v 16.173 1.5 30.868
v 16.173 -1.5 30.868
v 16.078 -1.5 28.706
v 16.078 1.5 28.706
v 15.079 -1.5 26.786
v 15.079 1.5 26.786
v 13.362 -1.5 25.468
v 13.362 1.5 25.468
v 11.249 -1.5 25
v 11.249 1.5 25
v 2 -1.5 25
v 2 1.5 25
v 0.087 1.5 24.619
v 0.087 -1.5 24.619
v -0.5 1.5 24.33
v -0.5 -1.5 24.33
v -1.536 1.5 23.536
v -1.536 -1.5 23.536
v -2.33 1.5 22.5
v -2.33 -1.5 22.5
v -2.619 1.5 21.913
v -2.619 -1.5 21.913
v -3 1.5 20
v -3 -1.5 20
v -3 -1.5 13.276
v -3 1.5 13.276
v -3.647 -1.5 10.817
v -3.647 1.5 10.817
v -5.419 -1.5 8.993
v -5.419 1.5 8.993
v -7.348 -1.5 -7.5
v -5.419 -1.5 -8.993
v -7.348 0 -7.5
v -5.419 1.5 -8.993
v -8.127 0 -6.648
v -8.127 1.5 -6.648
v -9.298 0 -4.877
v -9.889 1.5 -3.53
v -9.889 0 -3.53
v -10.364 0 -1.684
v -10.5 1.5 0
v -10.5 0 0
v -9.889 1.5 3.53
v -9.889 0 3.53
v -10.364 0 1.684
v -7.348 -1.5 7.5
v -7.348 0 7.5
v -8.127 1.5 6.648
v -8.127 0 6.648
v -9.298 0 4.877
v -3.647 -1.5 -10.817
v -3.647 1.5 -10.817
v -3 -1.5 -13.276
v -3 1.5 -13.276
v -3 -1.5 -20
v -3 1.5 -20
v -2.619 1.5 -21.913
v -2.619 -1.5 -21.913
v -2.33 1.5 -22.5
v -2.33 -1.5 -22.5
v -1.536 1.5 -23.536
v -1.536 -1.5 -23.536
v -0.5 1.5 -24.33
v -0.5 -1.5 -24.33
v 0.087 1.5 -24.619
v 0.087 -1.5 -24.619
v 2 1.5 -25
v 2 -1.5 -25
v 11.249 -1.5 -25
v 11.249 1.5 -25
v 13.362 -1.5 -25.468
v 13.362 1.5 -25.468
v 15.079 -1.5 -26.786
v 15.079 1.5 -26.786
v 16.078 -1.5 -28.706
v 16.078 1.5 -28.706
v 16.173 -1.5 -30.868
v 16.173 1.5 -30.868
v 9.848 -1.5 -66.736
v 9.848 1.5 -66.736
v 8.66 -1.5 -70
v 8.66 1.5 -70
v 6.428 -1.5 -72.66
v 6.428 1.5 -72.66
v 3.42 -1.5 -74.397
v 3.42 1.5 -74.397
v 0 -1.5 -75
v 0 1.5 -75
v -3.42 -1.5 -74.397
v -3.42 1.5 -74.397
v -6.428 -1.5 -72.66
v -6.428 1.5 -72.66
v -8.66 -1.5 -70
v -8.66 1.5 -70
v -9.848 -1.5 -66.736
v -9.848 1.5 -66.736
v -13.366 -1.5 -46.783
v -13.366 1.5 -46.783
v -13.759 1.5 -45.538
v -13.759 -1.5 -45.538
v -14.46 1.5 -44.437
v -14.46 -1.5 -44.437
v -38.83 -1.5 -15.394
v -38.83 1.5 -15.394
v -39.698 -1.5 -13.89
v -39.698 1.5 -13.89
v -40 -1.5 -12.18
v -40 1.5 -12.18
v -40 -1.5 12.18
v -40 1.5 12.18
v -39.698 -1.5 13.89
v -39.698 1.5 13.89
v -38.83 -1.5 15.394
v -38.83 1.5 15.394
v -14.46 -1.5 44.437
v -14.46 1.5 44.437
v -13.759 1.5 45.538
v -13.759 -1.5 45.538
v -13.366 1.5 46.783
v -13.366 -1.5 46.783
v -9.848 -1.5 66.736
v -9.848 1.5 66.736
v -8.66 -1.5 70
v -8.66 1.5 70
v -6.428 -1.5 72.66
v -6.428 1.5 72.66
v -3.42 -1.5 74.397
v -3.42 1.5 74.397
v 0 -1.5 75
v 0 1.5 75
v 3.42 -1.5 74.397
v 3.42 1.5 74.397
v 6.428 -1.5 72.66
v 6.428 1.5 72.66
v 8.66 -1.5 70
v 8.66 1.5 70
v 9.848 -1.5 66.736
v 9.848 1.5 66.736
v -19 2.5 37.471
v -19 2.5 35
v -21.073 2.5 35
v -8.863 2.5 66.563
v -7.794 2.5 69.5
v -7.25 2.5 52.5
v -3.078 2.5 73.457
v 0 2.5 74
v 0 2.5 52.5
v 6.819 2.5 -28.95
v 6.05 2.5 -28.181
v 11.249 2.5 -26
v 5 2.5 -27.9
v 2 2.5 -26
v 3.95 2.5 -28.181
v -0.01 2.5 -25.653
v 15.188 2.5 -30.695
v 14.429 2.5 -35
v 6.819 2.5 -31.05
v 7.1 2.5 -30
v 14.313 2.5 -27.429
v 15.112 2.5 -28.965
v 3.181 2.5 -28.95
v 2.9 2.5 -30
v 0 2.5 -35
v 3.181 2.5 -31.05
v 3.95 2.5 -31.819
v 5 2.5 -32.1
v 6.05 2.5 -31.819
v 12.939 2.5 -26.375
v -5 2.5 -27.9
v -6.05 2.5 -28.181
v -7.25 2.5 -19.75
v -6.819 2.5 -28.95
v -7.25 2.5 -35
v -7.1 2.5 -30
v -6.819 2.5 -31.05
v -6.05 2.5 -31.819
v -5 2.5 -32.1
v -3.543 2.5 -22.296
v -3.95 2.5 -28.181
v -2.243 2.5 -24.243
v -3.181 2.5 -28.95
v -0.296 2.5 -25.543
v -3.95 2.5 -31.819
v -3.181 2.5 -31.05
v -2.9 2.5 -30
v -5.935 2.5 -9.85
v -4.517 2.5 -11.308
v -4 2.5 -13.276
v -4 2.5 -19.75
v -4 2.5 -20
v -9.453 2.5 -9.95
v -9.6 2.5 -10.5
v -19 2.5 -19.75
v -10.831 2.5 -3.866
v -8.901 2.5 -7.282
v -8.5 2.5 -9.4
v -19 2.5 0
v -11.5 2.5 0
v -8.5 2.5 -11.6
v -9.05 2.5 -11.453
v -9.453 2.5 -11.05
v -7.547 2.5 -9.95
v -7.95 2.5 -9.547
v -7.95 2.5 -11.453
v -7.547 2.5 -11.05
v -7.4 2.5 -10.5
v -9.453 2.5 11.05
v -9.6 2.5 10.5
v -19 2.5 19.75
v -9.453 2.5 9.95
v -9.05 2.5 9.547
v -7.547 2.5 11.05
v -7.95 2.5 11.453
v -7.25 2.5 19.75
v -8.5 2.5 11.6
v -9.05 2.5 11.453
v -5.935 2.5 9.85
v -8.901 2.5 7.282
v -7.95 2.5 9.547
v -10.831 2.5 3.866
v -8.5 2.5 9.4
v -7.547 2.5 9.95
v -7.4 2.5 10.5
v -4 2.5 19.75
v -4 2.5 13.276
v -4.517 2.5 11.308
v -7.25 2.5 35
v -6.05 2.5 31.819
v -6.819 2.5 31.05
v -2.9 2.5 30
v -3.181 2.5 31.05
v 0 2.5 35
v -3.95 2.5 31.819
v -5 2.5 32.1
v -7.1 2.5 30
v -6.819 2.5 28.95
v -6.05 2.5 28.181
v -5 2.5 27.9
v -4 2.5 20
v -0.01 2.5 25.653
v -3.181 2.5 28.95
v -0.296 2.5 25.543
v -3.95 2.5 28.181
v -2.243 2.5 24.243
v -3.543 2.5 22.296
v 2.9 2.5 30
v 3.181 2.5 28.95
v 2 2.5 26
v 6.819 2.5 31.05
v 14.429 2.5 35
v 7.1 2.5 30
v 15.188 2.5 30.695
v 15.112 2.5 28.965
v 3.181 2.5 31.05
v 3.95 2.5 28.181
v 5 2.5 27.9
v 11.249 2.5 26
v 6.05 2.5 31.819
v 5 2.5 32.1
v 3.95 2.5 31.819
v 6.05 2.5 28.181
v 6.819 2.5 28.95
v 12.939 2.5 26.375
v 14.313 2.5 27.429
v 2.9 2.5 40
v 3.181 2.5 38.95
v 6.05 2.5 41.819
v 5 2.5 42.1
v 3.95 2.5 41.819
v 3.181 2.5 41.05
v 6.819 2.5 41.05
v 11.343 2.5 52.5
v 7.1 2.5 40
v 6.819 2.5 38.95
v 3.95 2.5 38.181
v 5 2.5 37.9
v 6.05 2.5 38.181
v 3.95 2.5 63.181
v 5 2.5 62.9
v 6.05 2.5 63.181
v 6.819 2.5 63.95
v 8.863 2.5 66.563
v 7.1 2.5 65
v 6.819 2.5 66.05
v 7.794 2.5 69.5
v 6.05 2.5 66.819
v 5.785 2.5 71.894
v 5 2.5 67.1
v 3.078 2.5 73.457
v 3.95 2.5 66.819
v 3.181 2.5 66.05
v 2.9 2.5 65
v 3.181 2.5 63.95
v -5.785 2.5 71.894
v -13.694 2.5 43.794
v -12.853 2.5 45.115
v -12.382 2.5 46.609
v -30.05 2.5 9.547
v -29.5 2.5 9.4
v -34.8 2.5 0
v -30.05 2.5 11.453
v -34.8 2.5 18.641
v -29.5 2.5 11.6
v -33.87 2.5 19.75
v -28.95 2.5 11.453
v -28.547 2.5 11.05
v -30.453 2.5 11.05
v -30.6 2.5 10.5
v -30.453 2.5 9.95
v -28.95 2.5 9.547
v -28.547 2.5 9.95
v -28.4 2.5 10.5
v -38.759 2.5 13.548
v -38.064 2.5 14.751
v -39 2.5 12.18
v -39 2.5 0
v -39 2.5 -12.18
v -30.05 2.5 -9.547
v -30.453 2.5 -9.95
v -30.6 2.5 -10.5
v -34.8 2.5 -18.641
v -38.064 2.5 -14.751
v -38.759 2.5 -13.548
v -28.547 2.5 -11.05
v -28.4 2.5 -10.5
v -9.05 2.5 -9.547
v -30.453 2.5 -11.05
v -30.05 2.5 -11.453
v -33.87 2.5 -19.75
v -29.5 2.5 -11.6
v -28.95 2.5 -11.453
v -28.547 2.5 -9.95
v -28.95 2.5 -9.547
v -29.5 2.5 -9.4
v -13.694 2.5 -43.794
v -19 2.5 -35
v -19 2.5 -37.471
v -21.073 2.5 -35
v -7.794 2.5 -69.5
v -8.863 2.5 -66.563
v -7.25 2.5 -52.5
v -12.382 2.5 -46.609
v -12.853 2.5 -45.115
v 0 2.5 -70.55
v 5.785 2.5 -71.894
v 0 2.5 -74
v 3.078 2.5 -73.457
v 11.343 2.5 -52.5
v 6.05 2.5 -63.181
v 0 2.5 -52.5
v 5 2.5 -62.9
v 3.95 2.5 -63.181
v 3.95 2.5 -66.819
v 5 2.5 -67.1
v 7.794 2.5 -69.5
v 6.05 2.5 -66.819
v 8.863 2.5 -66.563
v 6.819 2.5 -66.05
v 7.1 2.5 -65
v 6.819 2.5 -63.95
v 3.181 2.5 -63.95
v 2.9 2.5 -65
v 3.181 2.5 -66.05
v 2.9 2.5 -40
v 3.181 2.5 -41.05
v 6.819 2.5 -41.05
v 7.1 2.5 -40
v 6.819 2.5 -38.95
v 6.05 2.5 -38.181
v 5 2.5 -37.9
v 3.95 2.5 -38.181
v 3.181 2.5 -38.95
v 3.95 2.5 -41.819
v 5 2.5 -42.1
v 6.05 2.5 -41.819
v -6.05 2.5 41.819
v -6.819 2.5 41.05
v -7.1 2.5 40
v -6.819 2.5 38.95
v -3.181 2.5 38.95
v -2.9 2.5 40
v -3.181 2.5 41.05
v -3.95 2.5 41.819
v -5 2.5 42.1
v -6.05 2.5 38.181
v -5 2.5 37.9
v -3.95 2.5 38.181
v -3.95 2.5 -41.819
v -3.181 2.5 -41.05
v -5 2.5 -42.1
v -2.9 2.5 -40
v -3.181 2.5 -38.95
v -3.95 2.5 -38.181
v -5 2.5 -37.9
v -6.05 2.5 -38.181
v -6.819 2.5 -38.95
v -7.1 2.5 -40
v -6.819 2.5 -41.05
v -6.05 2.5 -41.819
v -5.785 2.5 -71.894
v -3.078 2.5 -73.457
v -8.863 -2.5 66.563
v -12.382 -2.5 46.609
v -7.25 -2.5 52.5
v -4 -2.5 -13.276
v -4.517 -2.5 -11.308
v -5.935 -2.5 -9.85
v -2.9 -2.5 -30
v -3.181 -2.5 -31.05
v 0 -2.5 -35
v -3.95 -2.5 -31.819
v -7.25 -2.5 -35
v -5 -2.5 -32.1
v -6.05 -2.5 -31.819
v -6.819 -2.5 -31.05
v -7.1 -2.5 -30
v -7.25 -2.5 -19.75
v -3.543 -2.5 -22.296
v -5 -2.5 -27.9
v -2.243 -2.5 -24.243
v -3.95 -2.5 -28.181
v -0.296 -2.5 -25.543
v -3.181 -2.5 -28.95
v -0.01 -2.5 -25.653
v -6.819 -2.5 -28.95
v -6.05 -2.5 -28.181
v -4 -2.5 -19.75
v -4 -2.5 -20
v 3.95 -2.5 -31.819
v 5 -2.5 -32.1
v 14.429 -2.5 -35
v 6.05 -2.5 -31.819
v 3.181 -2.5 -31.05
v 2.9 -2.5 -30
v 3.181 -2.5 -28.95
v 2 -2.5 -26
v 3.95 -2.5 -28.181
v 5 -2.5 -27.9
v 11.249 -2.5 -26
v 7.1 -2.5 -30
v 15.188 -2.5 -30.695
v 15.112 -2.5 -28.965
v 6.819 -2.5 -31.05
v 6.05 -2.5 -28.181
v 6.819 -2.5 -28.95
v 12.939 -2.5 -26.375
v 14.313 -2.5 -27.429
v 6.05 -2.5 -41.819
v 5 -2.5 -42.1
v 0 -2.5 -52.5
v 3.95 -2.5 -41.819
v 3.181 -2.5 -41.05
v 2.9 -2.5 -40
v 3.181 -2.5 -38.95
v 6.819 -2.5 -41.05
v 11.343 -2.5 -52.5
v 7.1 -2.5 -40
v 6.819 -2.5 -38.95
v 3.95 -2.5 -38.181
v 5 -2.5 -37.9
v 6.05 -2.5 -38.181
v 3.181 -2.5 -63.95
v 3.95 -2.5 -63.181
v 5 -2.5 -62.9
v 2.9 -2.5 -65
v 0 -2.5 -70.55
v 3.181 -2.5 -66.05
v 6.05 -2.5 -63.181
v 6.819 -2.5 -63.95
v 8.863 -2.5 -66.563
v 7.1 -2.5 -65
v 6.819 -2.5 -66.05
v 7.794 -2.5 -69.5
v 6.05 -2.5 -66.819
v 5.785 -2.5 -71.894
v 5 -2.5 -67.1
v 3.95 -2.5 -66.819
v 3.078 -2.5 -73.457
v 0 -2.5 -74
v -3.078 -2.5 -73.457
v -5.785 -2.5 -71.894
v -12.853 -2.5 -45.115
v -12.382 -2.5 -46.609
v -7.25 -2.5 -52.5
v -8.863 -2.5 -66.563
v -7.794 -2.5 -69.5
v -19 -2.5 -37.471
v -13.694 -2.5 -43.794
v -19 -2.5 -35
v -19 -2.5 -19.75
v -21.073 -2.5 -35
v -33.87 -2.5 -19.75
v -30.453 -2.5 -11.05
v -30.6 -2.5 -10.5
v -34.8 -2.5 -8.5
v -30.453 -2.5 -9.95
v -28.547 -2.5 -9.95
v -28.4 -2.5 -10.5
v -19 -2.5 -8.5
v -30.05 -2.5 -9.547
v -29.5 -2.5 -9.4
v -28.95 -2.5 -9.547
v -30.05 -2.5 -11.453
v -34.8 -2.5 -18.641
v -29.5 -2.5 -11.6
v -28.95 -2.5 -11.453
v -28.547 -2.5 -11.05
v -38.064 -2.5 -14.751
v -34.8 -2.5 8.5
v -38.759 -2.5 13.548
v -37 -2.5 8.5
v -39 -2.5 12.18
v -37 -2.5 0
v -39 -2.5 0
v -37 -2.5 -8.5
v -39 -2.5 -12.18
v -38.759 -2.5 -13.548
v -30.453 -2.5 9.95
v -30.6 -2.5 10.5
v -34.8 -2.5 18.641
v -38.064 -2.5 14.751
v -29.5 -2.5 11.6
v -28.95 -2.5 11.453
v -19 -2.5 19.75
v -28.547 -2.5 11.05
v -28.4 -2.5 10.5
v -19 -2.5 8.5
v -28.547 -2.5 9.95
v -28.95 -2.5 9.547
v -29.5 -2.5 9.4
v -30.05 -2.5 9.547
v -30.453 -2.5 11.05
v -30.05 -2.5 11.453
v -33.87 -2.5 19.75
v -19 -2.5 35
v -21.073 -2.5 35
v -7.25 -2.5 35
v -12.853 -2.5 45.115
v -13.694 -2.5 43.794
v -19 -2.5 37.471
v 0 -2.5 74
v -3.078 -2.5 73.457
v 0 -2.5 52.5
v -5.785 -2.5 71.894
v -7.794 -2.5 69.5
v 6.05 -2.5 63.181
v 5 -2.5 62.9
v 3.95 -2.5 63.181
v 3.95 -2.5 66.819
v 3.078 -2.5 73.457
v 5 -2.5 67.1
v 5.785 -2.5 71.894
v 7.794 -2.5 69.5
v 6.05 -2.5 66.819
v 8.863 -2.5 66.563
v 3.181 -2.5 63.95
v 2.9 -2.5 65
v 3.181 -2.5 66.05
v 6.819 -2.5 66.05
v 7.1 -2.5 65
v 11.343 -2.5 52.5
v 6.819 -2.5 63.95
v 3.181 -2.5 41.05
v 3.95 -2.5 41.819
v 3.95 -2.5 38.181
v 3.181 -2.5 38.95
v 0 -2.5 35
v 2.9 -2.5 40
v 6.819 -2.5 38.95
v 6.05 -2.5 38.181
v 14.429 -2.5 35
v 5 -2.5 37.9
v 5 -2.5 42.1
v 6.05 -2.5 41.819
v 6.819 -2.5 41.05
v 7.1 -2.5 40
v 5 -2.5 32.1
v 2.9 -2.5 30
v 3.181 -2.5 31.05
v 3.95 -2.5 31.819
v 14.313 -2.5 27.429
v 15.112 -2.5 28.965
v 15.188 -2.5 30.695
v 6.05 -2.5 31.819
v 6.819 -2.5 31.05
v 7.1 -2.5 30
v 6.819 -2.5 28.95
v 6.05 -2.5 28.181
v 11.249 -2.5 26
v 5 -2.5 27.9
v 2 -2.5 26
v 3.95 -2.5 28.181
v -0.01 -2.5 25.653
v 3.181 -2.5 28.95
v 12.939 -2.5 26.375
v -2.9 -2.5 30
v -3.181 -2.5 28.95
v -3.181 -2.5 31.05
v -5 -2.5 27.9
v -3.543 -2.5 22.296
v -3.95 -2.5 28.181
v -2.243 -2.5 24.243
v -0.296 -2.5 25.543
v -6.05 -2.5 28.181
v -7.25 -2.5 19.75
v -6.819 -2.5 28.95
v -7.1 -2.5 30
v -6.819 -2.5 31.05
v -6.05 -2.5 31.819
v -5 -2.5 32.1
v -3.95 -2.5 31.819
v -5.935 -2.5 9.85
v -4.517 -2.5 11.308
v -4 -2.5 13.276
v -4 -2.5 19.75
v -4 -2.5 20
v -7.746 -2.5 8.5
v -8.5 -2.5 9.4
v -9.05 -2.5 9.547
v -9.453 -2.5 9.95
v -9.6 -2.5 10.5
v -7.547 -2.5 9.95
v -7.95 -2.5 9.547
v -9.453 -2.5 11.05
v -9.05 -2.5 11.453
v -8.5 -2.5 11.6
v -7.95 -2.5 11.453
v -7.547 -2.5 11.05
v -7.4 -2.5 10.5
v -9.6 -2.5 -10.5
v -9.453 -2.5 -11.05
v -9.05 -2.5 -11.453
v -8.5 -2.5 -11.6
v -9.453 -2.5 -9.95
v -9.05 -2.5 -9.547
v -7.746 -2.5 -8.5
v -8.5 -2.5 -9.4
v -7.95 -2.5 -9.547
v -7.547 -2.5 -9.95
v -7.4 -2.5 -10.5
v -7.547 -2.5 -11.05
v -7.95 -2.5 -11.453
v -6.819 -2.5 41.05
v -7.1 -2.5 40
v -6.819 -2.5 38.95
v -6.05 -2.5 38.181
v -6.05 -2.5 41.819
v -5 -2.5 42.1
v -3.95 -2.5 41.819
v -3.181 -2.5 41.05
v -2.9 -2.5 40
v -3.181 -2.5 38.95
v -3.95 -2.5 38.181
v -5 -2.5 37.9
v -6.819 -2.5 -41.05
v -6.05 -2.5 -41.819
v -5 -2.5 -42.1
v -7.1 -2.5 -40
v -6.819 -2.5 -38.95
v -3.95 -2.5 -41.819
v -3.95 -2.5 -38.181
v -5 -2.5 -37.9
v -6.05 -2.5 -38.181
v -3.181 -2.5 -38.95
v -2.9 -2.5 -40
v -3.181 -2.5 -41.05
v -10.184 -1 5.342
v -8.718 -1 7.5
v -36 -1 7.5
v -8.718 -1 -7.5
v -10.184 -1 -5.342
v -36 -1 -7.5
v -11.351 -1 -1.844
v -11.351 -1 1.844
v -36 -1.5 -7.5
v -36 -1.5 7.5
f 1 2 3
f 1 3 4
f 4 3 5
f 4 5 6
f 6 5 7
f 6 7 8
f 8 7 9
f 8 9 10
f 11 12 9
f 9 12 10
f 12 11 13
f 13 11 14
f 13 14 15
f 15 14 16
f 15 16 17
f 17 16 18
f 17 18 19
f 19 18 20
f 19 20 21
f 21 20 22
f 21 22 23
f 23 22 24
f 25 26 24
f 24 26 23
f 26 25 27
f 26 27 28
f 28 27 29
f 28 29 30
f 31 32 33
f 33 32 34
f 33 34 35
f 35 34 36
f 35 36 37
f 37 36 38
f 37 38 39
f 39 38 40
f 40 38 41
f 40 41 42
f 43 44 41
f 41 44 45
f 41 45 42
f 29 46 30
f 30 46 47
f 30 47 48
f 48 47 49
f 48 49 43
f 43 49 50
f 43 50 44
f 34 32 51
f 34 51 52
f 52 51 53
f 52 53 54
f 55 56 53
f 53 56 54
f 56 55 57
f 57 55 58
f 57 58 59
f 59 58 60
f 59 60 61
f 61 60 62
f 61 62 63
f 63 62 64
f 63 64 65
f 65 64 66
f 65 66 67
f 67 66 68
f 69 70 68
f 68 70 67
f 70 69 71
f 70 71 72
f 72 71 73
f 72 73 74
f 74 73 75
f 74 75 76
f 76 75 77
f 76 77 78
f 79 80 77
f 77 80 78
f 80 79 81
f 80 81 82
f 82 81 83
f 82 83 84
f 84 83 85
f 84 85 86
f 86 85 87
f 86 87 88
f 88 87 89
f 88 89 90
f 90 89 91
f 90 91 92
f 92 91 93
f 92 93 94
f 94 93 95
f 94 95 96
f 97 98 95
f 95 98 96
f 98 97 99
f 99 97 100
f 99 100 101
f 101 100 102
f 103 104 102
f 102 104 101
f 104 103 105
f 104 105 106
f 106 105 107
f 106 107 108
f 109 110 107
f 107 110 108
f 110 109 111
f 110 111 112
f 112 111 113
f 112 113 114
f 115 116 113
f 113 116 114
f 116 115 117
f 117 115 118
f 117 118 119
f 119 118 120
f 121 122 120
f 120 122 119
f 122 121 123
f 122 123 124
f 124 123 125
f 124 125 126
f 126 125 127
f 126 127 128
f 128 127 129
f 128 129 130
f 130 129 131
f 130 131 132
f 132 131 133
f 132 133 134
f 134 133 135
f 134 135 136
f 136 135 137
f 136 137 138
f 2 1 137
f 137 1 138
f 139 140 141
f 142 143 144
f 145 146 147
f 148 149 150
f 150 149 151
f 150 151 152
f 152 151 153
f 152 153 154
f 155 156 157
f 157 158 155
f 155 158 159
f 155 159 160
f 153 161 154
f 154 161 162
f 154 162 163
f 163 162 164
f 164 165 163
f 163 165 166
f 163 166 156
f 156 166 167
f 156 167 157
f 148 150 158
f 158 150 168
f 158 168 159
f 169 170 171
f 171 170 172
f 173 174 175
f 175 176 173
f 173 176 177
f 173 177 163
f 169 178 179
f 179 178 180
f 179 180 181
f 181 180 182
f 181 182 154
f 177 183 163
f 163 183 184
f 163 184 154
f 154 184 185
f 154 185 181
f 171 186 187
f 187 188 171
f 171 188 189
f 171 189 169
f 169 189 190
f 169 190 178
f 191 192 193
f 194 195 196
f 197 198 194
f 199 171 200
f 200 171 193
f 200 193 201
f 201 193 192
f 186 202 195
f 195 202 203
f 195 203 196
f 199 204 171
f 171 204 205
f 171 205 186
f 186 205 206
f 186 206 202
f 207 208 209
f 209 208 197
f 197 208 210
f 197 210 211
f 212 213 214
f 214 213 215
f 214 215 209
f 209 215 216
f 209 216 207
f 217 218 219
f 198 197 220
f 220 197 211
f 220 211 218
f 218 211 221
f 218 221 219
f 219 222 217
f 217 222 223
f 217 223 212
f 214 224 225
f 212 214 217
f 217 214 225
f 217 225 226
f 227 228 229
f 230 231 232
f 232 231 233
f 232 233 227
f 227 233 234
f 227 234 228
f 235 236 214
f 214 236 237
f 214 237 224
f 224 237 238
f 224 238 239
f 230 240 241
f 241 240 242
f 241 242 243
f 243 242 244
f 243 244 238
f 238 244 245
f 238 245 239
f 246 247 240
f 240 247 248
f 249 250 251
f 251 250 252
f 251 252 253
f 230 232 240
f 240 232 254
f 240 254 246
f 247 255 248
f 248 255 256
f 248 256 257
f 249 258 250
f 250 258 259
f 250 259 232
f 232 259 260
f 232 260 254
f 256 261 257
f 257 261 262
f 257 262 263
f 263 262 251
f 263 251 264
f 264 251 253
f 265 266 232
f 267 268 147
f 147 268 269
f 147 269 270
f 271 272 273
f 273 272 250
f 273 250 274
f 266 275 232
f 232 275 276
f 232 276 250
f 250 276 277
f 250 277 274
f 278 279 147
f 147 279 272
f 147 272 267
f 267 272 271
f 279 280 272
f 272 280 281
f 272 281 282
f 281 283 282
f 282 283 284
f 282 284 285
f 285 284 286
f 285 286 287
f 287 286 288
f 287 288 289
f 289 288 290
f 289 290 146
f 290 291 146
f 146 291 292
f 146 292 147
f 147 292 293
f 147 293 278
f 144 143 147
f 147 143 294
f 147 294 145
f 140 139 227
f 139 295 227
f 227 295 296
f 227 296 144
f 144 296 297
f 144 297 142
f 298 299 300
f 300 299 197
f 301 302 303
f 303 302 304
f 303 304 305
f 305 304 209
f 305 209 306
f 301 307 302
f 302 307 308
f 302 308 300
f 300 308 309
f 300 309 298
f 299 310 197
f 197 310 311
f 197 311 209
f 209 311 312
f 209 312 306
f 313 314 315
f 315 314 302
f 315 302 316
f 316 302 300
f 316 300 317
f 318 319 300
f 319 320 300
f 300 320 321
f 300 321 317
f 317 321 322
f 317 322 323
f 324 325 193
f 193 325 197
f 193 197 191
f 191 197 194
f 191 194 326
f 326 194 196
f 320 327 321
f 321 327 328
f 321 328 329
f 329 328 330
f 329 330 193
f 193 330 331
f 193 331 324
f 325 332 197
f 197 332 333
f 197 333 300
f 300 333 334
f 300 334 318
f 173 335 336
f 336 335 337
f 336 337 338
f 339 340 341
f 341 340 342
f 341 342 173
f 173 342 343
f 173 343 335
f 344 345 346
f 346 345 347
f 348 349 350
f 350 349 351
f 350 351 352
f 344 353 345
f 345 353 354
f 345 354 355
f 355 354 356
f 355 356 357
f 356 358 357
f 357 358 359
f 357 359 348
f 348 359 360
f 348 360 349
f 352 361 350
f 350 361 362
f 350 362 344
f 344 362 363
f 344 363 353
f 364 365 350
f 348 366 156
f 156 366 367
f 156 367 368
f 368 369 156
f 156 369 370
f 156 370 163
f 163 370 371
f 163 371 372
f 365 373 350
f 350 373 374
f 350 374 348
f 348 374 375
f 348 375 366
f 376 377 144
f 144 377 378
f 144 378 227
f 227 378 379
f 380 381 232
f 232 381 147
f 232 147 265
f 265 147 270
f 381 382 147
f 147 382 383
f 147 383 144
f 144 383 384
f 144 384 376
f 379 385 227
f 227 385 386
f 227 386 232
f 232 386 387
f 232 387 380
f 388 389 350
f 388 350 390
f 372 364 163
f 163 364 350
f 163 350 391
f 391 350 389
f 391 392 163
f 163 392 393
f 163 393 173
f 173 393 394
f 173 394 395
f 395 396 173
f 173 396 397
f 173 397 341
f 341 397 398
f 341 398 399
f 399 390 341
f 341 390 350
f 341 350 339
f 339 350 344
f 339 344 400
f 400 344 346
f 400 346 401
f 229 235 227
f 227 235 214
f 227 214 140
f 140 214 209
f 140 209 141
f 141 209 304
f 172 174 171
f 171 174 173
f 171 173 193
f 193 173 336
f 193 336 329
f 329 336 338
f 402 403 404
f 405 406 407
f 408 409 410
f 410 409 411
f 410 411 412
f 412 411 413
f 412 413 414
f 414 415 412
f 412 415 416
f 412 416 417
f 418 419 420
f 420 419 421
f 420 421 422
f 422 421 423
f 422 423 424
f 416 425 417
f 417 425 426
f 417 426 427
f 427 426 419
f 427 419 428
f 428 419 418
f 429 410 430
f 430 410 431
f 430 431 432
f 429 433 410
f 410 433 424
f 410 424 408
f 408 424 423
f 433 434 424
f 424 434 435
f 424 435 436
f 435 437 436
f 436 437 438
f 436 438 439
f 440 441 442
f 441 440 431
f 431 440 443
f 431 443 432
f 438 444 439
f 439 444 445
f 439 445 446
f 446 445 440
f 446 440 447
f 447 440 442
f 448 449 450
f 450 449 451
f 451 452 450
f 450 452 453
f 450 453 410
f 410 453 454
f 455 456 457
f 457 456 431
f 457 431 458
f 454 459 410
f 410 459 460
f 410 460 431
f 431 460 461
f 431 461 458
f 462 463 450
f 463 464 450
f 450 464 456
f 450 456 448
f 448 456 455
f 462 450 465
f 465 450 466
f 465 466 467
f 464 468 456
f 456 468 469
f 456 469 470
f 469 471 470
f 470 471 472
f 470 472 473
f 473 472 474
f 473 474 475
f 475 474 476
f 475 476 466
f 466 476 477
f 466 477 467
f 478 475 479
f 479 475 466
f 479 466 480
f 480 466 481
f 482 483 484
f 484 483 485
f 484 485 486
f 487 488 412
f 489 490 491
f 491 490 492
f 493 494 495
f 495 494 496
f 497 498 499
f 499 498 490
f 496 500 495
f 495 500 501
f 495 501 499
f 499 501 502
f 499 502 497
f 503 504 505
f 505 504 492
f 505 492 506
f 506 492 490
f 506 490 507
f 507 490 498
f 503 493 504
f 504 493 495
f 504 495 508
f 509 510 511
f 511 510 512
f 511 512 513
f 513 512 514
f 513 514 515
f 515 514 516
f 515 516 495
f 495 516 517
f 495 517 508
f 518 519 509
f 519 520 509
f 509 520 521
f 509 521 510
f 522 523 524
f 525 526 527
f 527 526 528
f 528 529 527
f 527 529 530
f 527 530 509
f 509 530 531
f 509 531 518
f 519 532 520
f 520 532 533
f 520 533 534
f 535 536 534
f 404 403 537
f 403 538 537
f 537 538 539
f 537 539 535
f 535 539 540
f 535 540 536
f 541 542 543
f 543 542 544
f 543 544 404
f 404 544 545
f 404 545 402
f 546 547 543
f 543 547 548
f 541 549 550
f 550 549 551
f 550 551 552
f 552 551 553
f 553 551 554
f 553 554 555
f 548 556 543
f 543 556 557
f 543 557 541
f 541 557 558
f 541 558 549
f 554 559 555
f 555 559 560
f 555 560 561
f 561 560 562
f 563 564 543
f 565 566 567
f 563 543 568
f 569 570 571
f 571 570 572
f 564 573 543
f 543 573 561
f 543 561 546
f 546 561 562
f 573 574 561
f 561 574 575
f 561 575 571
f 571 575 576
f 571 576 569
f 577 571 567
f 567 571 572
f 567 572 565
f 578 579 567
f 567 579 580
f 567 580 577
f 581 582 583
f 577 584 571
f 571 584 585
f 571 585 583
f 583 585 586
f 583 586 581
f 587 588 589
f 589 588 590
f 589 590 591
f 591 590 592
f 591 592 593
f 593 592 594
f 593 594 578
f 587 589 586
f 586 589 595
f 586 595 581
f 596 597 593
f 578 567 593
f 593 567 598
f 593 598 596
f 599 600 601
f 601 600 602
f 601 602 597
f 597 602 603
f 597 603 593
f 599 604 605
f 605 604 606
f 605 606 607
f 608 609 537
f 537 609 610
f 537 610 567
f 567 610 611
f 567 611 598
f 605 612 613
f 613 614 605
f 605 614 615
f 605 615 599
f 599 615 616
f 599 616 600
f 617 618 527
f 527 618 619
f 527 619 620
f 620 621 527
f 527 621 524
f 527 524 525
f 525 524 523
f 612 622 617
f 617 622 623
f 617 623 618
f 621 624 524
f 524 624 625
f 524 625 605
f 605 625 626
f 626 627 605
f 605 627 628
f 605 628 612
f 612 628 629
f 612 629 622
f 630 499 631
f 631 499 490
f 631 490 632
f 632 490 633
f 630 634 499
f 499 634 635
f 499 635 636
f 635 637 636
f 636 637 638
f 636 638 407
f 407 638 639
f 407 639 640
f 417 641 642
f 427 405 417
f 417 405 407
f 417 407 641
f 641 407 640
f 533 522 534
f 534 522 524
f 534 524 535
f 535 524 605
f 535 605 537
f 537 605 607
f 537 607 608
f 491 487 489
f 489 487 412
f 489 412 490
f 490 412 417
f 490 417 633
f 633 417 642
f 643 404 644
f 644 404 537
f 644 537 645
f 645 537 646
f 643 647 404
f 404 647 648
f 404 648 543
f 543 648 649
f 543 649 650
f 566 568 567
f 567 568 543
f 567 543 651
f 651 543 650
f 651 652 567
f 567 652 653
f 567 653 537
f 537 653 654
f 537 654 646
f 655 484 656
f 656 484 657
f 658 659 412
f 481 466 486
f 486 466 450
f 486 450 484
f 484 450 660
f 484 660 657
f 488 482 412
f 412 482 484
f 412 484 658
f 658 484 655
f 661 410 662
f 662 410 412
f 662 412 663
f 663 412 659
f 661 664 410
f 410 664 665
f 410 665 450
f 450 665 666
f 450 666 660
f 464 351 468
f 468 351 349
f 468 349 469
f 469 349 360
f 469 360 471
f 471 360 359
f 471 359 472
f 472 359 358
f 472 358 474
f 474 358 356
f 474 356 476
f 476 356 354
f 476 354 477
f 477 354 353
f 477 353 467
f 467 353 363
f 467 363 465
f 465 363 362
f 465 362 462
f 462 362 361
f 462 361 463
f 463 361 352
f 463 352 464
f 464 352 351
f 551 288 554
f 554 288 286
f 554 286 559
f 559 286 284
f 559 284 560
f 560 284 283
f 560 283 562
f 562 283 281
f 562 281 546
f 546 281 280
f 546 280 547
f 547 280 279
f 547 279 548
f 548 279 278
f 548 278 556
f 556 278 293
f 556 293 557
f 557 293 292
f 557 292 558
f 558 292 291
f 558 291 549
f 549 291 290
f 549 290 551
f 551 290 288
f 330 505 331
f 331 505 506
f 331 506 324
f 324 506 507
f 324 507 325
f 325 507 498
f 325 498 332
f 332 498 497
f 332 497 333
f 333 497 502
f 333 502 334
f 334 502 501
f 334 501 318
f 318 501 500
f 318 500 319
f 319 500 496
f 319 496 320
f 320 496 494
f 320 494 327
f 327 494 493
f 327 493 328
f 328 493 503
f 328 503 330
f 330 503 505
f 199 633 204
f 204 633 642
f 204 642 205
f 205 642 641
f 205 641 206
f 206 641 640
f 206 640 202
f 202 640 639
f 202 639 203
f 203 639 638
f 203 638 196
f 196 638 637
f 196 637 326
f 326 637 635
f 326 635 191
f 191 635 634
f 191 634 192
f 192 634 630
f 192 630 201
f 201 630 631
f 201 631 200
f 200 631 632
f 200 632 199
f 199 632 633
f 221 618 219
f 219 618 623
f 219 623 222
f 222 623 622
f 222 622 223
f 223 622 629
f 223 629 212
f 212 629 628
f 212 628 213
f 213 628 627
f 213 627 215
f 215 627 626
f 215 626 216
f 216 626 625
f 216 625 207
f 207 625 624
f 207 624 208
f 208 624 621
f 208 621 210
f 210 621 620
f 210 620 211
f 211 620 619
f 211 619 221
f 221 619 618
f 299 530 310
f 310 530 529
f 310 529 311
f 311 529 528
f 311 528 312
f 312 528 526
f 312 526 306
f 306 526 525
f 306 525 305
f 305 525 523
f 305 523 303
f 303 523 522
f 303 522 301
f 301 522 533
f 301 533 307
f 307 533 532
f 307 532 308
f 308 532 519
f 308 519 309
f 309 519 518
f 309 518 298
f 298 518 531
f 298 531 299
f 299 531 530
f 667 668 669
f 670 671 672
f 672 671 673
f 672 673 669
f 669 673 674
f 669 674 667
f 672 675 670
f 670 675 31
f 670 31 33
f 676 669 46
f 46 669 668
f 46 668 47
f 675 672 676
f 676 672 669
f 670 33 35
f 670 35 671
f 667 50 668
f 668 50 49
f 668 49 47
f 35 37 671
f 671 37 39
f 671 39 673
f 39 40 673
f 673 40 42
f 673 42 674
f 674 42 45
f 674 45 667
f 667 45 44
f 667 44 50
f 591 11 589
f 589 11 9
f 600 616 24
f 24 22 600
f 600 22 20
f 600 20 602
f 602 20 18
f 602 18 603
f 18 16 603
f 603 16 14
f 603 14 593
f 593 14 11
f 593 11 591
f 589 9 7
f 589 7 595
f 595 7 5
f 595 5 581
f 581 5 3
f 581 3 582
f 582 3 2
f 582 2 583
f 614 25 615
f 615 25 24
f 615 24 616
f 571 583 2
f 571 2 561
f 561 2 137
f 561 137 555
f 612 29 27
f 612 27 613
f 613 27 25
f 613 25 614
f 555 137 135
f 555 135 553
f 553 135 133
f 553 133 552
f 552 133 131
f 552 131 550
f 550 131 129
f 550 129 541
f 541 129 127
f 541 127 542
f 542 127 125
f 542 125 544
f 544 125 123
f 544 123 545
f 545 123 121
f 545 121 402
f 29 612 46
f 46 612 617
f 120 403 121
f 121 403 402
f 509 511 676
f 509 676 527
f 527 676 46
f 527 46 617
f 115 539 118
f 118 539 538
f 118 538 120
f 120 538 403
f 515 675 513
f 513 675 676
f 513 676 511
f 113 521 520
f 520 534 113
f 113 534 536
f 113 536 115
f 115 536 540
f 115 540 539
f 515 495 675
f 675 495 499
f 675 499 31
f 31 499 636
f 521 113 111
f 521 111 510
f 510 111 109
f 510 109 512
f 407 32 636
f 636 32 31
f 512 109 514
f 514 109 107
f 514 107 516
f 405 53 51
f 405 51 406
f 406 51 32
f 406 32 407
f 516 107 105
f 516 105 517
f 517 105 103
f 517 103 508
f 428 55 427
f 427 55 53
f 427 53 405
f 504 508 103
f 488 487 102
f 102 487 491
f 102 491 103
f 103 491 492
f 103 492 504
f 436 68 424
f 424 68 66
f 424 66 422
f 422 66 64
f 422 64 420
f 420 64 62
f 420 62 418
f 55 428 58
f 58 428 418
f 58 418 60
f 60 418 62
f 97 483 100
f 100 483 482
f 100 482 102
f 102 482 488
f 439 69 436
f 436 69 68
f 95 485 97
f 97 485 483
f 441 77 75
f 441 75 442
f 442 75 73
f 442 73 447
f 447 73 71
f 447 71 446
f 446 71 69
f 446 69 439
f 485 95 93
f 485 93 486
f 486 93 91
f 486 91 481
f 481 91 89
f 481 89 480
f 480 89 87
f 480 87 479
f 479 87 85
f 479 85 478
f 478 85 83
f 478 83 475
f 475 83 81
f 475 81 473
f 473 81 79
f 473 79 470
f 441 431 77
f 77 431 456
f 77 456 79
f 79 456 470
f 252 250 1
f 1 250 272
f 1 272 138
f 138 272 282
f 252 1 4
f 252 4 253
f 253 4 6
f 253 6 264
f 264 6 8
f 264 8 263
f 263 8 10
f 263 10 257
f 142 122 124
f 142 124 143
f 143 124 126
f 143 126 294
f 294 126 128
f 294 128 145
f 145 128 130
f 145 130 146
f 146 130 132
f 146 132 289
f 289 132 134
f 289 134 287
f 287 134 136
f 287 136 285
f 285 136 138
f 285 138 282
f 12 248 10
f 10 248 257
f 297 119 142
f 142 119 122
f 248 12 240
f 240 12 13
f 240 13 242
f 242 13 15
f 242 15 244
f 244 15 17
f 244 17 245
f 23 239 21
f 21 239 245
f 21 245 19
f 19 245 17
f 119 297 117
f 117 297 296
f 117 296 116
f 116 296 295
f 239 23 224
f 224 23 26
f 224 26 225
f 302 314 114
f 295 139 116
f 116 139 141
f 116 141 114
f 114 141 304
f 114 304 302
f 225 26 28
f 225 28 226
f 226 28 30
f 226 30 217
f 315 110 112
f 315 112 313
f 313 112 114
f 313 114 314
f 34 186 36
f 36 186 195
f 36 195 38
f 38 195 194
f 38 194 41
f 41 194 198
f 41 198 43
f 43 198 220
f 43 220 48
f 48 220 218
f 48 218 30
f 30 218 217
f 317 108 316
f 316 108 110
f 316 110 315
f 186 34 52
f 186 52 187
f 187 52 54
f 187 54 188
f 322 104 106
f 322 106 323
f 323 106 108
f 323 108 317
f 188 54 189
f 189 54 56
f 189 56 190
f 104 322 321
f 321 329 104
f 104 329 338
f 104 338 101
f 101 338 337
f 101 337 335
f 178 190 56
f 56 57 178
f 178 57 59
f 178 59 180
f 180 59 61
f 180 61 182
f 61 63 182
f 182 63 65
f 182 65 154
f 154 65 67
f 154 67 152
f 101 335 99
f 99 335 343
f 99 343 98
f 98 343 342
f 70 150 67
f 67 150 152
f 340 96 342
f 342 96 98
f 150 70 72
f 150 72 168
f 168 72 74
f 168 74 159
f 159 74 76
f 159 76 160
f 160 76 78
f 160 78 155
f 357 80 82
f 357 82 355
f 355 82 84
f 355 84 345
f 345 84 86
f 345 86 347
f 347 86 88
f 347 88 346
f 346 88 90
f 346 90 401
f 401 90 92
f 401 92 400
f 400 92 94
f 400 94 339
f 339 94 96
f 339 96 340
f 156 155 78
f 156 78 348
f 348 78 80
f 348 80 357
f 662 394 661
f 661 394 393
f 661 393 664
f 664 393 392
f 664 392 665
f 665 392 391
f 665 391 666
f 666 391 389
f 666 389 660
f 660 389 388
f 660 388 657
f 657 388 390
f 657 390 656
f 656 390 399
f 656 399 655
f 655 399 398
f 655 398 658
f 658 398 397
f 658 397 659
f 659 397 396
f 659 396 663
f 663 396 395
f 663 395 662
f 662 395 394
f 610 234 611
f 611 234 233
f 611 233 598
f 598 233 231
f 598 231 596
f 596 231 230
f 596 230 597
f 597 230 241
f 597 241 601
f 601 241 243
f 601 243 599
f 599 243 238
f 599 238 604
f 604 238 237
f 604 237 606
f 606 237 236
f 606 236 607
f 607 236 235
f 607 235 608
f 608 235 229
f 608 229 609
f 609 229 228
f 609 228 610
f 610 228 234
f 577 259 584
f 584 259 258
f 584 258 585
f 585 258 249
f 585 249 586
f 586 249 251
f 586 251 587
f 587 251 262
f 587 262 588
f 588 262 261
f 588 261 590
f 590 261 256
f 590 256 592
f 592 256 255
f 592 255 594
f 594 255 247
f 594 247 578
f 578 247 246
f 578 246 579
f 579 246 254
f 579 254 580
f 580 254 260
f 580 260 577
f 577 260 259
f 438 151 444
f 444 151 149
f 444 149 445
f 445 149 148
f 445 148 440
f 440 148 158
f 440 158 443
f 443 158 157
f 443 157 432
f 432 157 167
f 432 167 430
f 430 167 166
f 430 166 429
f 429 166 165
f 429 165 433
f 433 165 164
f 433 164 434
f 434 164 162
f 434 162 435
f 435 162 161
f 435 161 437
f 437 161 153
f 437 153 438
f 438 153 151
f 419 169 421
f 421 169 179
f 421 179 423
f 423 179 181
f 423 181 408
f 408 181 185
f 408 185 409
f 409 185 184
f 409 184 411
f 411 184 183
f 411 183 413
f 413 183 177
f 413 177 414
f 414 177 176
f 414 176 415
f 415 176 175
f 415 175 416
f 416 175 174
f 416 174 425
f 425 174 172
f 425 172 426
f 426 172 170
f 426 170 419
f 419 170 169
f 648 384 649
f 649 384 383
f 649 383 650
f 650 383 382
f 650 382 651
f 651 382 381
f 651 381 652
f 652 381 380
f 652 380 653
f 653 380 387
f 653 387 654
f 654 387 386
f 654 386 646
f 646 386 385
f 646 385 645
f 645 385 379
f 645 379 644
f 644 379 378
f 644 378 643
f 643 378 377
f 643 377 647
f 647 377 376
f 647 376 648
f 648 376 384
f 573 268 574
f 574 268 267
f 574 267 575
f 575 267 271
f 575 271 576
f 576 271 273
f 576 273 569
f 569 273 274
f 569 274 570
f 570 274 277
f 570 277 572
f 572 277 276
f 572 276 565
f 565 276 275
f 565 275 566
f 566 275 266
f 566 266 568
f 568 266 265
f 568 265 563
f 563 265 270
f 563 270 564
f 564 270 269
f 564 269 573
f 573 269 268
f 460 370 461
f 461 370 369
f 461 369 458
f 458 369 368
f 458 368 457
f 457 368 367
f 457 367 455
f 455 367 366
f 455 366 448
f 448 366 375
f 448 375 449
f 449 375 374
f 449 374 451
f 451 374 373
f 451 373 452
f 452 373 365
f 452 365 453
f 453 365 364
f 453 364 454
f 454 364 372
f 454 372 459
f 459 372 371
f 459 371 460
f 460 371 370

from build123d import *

# Parameters (mm, degrees)
EXTRUDE_1_DEPTH          = 2.5
SKETCH_2_R               = 2.1
CUT_EXTRUDE_1_DEPTH      = 86.14693183
SKETCH_3_R               = 1.1
CUT_EXTRUDE_2_DEPTH      = 86.14693183
SKETCH_6_W               = 36
SKETCH_6_H               = 15
CUT_EXTRUDE_3_DEPTH      = 1.5
CHAMFER_1_SIZE           = 1
CUT_EXTRUDE_4_DEPTH      = 86.14693183
CUT_EXTRUDE_4_DEPTH_BACK = 86.14693183
SKETCH_7_R               = 2.1


with BuildPart() as part:
    # 草图1 → 凸台-拉伸1 (new, symmetric)
    with BuildSketch(Plane(origin=(0, 0, 0), x_dir=(1, 0, 0), z_dir=(0, 1, 0))):
        with BuildLine():
            Line((16.172616149, -30.868240888), (9.84807753, -66.736481777))
            ThreePointArc((9.84807753, -66.736481777), (0, -75), (-9.84807753, -66.736481777))
            Line((-9.84807753, -66.736481777), (-13.366457523, -46.782757288))
            ThreePointArc((-13.366457523, -46.782757288), (-13.758957353, -45.537906868), (-14.460274073, -44.437060128))
            Line((-14.460274073, -44.437060128), (-38.830222216, -15.394086877))
            ThreePointArc((-38.830222216, -15.394086877), (-39.698463104, -13.890249545), (-40, -12.180148829))
            Line((-40, -12.180148829), (-40, 12.180148829))
            ThreePointArc((-40, 12.180148829), (-39.698463104, 13.890249545), (-38.830222216, 15.394086877))
            Line((-38.830222216, 15.394086877), (-14.460274073, 44.437060128))
            ThreePointArc((-14.460274073, 44.437060128), (-13.758957353, 45.537906868), (-13.366457523, 46.782757288))
            Line((-13.366457523, 46.782757288), (-9.84807753, 66.736481777))
            ThreePointArc((-9.84807753, 66.736481777), (0, 75), (9.84807753, 66.736481777))
            Line((9.84807753, 66.736481777), (16.172616149, 30.868240888))
            ThreePointArc((16.172616149, 30.868240888), (15.0787996, 26.786061952), (11.248577384, 25))
            Line((11.248577384, 25), (2, 25))
            ThreePointArc((2, 25), (-1.535533906, 23.535533906), (-3, 20))
            Line((-3, 20), (-3, 13.275918047))
            ThreePointArc((-3, 13.275918047), (-3.646654975, 10.816571163), (-5.419354839, 8.993363839))
            ThreePointArc((-5.419354839, 8.993363839), (-10.5, 0), (-5.419354839, -8.993363839))
            ThreePointArc((-5.419354839, -8.993363839), (-3.646654975, -10.816571163), (-3, -13.275918047))
            Line((-3, -13.275918047), (-3, -20))
            ThreePointArc((-3, -20), (-1.535533906, -23.535533906), (2, -25))
            Line((2, -25), (11.248577384, -25))
            ThreePointArc((11.248577384, -25), (15.0787996, -26.786061952), (16.172616149, -30.868240888))
        make_face()
    extrude(amount=EXTRUDE_1_DEPTH, both=True)

    # 草图2 → 切除-拉伸1 (cut, through all)
    with BuildSketch(Plane(origin=(0, 2.5, 0), x_dir=(1, 0, 0), z_dir=(0, 1, 0))):
        with Locations(Location((5, -65, 0), (0, 0, 270))):
            Circle(SKETCH_2_R)
        with Locations(Location((5, 65, 0), (0, 0, 90))):
            Circle(SKETCH_2_R)
    extrude(amount=-CUT_EXTRUDE_1_DEPTH, mode=Mode.SUBTRACT)

    # 草图3 → 切除-拉伸2 (cut, through all)
    with BuildSketch(Plane.XZ.offset(2.5)):
        with Locations(Location((-8.5, 10.5, 0), (0, 0, 270))):
            Circle(SKETCH_3_R)
        with Locations(Location((-29.5, 10.5, 0), (0, 0, 270))):
            Circle(SKETCH_3_R)
        with Locations(Location((-29.5, -10.5, 0), (0, 0, 90))):
            Circle(SKETCH_3_R)
        with Locations(Location((-8.5, -10.5, 0), (0, 0, 90))):
            Circle(SKETCH_3_R)
    extrude(amount=-CUT_EXTRUDE_2_DEPTH, mode=Mode.SUBTRACT)

    # 草图6 → 切除-拉伸3 (cut)
    with BuildSketch(Plane.XZ.offset(2.5)):
        with Locations((-18, 0)):
            Rectangle(SKETCH_6_W, SKETCH_6_H)
    extrude(amount=-CUT_EXTRUDE_3_DEPTH, mode=Mode.SUBTRACT)

    # 倒角1
    chamfer_1_edges = [part.edges().sort_by_distance(p)[0] for p in [
        (-6.427430804, -2.5, -8.302899088),
        (-21.674234614, -2.5, 7.5),
        (-10.5, -1, 0),
        (-36, -2.5, 0),
        (-21.674234614, -2.5, -7.5),
        (-1.535533906, 2.5, 23.535533906),
        (-3, 2.5, 16.637959024),
        (-3.646654975, 2.5, 10.816571163),
        (13.01034684, -2.5, 48.802361333),
        (0, -2.5, 75),
        (-11.607267527, -2.5, 56.759619532),
        (-13.758957353, -2.5, 45.537906868),
        (-26.645248144, -2.5, 29.915573502),
        (-10.5, 2.5, 0),
        (-39.698463104, -2.5, 13.890249545),
        (-40, -2.5, 0),
        (-39.698463104, -2.5, -13.890249545),
        (-26.645248144, -2.5, -29.915573502),
        (-13.758957353, -2.5, -45.537906868),
        (-11.607267527, -2.5, -56.759619532),
        (0, -2.5, -75),
        (13.01034684, -2.5, -48.802361333),
        (15.0787996, -2.5, -26.786061952),
        (6.624288692, -2.5, -25),
        (-3.646654975, 2.5, -10.816571163),
        (-1.535533906, -2.5, -23.535533906),
        (-3, -2.5, -16.637959024),
        (-3.646654975, -2.5, -10.816571163),
        (-6.427430804, -2.5, 8.302899088),
        (-3.646654975, -2.5, 10.816571163),
        (-3, -2.5, 16.637959024),
        (-1.535533906, -2.5, 23.535533906),
        (6.624288692, -2.5, 25),
        (15.0787996, -2.5, 26.786061952),
        (-3, 2.5, -16.637959024),
        (-1.535533906, 2.5, -23.535533906),
        (6.624288692, 2.5, -25),
        (15.0787996, 2.5, -26.786061952),
        (13.01034684, 2.5, -48.802361333),
        (15.0787996, 2.5, 26.786061952),
        (0, 2.5, -75),
        (-11.607267527, 2.5, -56.759619532),
        (-13.758957353, 2.5, -45.537906868),
        (-26.645248144, 2.5, -29.915573502),
        (-39.698463104, 2.5, -13.890249545),
        (-40, 2.5, 0),
        (-39.698463104, 2.5, 13.890249545),
        (-26.645248144, 2.5, 29.915573502),
        (-13.758957353, 2.5, 45.537906868),
        (-11.607267527, 2.5, 56.759619532),
        (6.624288692, 2.5, 25),
        (0, 2.5, 75),
        (13.01034684, 2.5, 48.802361333),
    ]]
    chamfer(chamfer_1_edges, length=CHAMFER_1_SIZE)

    # 草图7 → 切除-拉伸4 (cut, two sides: drawn at the far end of the back side and taken through both)
    with BuildSketch(Plane(origin=(0, 2.5, 0), x_dir=(1, 0, 0), z_dir=(0, 1, 0)).offset(-CUT_EXTRUDE_4_DEPTH_BACK)):
        with Locations(Location((-5, 40, 0), (0, 0, 270))):
            Circle(SKETCH_7_R)
        with Locations(Location((5, 40, 0), (0, 0, 270))):
            Circle(SKETCH_7_R)
        with Locations(Location((5, -40, 0), (0, 0, 90))):
            Circle(SKETCH_7_R)
        with Locations(Location((-5, -40, 0), (0, 0, 90))):
            Circle(SKETCH_7_R)
        with Locations(Location((-5, 30, 0), (0, 0, 270))):
            Circle(SKETCH_7_R)
        with Locations(Location((5, 30, 0), (0, 0, 270))):
            Circle(SKETCH_7_R)
        with Locations(Location((5, -30, 0), (0, 0, 90))):
            Circle(SKETCH_7_R)
        with Locations(Location((-5, -30, 0), (0, 0, 90))):
            Circle(SKETCH_7_R)
    extrude(amount=CUT_EXTRUDE_4_DEPTH + CUT_EXTRUDE_4_DEPTH_BACK, mode=Mode.SUBTRACT)


solid = part.part
